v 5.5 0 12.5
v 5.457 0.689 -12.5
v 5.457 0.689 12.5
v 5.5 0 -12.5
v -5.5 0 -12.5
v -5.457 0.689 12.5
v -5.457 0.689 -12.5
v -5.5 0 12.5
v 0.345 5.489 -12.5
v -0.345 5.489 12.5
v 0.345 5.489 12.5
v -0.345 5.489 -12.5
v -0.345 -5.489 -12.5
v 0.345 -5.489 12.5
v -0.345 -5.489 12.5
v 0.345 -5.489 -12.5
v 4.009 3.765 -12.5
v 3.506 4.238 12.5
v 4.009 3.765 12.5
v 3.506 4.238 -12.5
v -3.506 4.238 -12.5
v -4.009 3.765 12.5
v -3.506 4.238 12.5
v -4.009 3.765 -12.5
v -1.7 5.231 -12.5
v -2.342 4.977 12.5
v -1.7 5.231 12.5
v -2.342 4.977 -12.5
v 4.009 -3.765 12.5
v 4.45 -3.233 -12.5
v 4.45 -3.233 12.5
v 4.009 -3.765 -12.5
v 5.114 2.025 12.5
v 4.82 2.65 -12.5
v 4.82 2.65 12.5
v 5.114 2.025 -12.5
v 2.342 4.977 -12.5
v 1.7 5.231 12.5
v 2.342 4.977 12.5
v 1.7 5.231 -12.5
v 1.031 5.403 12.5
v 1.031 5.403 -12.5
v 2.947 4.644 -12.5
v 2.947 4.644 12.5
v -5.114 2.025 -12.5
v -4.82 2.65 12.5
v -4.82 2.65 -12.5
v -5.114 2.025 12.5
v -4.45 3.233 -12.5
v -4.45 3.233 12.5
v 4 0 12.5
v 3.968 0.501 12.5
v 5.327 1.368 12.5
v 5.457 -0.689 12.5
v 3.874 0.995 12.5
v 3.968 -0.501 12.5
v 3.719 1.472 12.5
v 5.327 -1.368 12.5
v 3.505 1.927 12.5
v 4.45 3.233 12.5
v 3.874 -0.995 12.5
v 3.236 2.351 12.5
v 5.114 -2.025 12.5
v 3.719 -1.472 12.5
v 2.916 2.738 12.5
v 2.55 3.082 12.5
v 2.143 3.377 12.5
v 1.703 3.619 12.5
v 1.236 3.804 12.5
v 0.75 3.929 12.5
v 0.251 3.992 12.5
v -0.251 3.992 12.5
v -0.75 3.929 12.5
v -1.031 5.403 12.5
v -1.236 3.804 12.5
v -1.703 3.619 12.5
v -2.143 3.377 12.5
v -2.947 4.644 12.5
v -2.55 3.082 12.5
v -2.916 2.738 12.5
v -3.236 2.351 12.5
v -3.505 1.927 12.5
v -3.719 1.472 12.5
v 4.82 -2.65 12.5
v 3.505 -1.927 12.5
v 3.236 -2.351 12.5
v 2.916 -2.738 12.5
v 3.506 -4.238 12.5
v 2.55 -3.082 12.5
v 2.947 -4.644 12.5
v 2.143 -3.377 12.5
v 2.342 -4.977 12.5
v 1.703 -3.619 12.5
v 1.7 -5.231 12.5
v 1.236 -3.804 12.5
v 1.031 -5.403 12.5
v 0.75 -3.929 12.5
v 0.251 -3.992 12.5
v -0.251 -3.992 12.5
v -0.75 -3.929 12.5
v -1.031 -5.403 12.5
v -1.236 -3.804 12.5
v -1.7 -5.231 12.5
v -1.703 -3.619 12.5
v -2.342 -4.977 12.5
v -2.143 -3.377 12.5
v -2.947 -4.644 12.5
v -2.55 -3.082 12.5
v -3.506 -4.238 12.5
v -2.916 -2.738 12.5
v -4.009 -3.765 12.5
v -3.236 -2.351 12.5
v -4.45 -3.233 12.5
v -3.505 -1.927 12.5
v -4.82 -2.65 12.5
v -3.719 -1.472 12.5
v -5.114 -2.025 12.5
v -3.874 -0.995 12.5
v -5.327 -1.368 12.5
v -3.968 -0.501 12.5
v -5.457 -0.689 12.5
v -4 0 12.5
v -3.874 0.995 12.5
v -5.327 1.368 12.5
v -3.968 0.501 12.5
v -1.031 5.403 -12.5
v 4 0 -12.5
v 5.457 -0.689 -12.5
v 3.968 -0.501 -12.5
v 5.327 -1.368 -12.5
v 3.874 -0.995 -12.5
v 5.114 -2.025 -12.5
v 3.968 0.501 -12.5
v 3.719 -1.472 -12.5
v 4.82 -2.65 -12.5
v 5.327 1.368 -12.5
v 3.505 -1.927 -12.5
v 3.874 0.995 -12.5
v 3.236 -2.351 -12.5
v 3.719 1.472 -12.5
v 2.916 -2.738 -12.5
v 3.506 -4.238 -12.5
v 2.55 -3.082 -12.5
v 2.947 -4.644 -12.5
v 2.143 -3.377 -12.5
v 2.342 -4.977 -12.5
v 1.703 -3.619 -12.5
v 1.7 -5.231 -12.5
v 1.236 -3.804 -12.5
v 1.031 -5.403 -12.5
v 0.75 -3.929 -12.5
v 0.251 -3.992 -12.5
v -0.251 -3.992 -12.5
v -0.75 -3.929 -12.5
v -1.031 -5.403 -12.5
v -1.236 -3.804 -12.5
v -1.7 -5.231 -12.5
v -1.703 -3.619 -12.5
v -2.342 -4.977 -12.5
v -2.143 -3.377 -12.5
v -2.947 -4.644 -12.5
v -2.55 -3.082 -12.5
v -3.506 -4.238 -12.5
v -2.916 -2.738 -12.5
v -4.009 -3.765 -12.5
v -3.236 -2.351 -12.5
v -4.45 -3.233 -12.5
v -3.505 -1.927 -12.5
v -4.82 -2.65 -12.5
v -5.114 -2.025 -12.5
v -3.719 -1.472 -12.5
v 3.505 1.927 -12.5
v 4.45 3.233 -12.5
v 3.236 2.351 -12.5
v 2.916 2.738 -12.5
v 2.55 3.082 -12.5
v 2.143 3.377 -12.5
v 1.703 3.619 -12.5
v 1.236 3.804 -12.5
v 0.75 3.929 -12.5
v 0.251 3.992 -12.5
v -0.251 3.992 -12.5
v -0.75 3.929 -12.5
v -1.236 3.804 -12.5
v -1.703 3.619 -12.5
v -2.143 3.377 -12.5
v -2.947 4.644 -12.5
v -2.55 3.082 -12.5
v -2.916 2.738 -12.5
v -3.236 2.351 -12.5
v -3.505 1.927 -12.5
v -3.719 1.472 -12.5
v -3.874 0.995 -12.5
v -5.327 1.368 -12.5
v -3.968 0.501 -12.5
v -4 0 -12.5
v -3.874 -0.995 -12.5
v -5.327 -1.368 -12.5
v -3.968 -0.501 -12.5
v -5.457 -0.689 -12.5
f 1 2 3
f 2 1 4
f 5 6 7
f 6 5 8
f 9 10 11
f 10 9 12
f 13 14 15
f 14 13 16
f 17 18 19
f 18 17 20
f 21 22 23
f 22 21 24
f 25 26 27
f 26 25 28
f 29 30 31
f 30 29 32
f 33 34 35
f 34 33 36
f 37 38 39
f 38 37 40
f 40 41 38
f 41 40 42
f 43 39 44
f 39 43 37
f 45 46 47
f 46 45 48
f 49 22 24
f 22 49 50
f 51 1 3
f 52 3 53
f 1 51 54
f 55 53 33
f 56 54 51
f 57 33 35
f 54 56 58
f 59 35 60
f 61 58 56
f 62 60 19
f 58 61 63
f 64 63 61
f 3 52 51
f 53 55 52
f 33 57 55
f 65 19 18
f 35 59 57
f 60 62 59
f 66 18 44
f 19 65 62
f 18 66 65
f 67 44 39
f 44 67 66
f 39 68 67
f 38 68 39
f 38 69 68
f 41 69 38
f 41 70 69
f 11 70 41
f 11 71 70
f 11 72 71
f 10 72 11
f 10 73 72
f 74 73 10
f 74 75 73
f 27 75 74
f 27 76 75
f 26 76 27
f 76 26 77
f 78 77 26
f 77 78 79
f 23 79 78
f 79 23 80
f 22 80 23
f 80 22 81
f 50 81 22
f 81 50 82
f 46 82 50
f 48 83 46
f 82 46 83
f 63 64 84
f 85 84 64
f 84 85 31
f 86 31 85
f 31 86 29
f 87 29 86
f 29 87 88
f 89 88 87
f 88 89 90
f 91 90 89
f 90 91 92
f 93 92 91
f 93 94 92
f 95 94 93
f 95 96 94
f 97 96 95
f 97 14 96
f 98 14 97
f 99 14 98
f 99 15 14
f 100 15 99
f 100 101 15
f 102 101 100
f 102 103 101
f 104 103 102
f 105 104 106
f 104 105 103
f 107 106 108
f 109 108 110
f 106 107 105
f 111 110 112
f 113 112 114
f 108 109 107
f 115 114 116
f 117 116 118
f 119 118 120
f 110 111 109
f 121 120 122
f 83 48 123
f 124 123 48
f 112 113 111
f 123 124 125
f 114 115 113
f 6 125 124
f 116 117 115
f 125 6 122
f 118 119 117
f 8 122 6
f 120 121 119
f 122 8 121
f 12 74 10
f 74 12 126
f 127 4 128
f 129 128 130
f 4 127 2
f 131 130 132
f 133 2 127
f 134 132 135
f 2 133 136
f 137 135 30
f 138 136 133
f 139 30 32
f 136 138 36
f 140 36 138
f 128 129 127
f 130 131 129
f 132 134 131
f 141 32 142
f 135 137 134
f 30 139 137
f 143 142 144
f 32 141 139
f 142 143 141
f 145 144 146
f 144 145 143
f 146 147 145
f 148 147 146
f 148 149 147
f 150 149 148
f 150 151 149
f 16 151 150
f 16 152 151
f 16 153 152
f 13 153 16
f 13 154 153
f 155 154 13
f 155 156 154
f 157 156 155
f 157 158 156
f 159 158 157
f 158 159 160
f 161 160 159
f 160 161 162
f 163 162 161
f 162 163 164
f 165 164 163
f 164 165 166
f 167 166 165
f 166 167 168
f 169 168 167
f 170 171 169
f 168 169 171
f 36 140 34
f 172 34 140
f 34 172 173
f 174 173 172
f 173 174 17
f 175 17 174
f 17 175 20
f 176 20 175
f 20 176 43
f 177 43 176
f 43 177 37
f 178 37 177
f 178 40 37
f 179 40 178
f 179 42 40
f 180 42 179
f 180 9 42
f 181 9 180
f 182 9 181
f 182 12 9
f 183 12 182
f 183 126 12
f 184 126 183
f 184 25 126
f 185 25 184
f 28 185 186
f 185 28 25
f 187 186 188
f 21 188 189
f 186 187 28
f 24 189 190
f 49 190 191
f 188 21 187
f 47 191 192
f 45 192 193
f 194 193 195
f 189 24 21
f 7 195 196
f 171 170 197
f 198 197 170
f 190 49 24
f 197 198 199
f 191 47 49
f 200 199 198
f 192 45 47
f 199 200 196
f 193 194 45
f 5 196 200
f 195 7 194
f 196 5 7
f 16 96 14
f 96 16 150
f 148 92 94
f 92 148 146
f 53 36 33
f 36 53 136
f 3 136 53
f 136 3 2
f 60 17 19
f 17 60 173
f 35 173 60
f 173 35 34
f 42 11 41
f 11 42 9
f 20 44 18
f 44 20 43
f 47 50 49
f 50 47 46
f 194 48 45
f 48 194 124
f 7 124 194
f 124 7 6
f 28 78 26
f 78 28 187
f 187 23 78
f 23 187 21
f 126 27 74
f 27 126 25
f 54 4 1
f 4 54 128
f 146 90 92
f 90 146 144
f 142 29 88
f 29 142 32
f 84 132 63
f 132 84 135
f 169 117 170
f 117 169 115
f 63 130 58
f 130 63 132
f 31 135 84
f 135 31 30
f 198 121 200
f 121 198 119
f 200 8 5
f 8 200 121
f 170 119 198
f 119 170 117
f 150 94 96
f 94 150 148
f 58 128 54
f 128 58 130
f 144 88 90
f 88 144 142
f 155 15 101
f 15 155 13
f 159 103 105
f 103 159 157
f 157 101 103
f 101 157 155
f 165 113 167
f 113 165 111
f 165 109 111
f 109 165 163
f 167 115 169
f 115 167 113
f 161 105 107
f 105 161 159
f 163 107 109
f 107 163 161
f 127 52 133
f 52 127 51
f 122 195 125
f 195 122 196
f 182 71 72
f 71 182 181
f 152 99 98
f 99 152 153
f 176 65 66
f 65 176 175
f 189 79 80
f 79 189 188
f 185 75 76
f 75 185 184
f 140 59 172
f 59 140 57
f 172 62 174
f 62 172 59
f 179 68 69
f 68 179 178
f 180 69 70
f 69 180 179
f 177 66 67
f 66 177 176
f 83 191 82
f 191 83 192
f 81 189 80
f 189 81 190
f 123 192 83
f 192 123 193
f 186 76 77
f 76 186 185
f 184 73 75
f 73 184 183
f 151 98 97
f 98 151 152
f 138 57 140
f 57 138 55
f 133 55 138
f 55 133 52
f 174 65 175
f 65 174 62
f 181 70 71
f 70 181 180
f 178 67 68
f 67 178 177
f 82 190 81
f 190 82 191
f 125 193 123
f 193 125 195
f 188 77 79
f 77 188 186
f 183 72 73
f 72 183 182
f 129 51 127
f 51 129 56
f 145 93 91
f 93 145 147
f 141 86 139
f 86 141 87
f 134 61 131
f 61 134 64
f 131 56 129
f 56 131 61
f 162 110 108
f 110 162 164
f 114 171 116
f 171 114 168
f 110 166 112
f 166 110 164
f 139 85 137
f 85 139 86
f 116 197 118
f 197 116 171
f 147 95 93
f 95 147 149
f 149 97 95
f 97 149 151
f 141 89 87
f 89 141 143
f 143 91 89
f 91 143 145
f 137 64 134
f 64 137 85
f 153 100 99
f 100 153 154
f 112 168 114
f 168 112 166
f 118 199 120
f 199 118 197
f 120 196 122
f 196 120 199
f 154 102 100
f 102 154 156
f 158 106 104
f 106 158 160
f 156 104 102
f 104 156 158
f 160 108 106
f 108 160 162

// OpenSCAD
$fn = 50;


difference() {
	union() {
		translate(v = [0, 0, -12.5000000000]) {
			cylinder(h = 25, r = 5.5000000000);
		}
	}
	union() {
		translate(v = [0, 0, -100.0000000000]) {
			cylinder(h = 200, r = 4);
		}
	}
}
